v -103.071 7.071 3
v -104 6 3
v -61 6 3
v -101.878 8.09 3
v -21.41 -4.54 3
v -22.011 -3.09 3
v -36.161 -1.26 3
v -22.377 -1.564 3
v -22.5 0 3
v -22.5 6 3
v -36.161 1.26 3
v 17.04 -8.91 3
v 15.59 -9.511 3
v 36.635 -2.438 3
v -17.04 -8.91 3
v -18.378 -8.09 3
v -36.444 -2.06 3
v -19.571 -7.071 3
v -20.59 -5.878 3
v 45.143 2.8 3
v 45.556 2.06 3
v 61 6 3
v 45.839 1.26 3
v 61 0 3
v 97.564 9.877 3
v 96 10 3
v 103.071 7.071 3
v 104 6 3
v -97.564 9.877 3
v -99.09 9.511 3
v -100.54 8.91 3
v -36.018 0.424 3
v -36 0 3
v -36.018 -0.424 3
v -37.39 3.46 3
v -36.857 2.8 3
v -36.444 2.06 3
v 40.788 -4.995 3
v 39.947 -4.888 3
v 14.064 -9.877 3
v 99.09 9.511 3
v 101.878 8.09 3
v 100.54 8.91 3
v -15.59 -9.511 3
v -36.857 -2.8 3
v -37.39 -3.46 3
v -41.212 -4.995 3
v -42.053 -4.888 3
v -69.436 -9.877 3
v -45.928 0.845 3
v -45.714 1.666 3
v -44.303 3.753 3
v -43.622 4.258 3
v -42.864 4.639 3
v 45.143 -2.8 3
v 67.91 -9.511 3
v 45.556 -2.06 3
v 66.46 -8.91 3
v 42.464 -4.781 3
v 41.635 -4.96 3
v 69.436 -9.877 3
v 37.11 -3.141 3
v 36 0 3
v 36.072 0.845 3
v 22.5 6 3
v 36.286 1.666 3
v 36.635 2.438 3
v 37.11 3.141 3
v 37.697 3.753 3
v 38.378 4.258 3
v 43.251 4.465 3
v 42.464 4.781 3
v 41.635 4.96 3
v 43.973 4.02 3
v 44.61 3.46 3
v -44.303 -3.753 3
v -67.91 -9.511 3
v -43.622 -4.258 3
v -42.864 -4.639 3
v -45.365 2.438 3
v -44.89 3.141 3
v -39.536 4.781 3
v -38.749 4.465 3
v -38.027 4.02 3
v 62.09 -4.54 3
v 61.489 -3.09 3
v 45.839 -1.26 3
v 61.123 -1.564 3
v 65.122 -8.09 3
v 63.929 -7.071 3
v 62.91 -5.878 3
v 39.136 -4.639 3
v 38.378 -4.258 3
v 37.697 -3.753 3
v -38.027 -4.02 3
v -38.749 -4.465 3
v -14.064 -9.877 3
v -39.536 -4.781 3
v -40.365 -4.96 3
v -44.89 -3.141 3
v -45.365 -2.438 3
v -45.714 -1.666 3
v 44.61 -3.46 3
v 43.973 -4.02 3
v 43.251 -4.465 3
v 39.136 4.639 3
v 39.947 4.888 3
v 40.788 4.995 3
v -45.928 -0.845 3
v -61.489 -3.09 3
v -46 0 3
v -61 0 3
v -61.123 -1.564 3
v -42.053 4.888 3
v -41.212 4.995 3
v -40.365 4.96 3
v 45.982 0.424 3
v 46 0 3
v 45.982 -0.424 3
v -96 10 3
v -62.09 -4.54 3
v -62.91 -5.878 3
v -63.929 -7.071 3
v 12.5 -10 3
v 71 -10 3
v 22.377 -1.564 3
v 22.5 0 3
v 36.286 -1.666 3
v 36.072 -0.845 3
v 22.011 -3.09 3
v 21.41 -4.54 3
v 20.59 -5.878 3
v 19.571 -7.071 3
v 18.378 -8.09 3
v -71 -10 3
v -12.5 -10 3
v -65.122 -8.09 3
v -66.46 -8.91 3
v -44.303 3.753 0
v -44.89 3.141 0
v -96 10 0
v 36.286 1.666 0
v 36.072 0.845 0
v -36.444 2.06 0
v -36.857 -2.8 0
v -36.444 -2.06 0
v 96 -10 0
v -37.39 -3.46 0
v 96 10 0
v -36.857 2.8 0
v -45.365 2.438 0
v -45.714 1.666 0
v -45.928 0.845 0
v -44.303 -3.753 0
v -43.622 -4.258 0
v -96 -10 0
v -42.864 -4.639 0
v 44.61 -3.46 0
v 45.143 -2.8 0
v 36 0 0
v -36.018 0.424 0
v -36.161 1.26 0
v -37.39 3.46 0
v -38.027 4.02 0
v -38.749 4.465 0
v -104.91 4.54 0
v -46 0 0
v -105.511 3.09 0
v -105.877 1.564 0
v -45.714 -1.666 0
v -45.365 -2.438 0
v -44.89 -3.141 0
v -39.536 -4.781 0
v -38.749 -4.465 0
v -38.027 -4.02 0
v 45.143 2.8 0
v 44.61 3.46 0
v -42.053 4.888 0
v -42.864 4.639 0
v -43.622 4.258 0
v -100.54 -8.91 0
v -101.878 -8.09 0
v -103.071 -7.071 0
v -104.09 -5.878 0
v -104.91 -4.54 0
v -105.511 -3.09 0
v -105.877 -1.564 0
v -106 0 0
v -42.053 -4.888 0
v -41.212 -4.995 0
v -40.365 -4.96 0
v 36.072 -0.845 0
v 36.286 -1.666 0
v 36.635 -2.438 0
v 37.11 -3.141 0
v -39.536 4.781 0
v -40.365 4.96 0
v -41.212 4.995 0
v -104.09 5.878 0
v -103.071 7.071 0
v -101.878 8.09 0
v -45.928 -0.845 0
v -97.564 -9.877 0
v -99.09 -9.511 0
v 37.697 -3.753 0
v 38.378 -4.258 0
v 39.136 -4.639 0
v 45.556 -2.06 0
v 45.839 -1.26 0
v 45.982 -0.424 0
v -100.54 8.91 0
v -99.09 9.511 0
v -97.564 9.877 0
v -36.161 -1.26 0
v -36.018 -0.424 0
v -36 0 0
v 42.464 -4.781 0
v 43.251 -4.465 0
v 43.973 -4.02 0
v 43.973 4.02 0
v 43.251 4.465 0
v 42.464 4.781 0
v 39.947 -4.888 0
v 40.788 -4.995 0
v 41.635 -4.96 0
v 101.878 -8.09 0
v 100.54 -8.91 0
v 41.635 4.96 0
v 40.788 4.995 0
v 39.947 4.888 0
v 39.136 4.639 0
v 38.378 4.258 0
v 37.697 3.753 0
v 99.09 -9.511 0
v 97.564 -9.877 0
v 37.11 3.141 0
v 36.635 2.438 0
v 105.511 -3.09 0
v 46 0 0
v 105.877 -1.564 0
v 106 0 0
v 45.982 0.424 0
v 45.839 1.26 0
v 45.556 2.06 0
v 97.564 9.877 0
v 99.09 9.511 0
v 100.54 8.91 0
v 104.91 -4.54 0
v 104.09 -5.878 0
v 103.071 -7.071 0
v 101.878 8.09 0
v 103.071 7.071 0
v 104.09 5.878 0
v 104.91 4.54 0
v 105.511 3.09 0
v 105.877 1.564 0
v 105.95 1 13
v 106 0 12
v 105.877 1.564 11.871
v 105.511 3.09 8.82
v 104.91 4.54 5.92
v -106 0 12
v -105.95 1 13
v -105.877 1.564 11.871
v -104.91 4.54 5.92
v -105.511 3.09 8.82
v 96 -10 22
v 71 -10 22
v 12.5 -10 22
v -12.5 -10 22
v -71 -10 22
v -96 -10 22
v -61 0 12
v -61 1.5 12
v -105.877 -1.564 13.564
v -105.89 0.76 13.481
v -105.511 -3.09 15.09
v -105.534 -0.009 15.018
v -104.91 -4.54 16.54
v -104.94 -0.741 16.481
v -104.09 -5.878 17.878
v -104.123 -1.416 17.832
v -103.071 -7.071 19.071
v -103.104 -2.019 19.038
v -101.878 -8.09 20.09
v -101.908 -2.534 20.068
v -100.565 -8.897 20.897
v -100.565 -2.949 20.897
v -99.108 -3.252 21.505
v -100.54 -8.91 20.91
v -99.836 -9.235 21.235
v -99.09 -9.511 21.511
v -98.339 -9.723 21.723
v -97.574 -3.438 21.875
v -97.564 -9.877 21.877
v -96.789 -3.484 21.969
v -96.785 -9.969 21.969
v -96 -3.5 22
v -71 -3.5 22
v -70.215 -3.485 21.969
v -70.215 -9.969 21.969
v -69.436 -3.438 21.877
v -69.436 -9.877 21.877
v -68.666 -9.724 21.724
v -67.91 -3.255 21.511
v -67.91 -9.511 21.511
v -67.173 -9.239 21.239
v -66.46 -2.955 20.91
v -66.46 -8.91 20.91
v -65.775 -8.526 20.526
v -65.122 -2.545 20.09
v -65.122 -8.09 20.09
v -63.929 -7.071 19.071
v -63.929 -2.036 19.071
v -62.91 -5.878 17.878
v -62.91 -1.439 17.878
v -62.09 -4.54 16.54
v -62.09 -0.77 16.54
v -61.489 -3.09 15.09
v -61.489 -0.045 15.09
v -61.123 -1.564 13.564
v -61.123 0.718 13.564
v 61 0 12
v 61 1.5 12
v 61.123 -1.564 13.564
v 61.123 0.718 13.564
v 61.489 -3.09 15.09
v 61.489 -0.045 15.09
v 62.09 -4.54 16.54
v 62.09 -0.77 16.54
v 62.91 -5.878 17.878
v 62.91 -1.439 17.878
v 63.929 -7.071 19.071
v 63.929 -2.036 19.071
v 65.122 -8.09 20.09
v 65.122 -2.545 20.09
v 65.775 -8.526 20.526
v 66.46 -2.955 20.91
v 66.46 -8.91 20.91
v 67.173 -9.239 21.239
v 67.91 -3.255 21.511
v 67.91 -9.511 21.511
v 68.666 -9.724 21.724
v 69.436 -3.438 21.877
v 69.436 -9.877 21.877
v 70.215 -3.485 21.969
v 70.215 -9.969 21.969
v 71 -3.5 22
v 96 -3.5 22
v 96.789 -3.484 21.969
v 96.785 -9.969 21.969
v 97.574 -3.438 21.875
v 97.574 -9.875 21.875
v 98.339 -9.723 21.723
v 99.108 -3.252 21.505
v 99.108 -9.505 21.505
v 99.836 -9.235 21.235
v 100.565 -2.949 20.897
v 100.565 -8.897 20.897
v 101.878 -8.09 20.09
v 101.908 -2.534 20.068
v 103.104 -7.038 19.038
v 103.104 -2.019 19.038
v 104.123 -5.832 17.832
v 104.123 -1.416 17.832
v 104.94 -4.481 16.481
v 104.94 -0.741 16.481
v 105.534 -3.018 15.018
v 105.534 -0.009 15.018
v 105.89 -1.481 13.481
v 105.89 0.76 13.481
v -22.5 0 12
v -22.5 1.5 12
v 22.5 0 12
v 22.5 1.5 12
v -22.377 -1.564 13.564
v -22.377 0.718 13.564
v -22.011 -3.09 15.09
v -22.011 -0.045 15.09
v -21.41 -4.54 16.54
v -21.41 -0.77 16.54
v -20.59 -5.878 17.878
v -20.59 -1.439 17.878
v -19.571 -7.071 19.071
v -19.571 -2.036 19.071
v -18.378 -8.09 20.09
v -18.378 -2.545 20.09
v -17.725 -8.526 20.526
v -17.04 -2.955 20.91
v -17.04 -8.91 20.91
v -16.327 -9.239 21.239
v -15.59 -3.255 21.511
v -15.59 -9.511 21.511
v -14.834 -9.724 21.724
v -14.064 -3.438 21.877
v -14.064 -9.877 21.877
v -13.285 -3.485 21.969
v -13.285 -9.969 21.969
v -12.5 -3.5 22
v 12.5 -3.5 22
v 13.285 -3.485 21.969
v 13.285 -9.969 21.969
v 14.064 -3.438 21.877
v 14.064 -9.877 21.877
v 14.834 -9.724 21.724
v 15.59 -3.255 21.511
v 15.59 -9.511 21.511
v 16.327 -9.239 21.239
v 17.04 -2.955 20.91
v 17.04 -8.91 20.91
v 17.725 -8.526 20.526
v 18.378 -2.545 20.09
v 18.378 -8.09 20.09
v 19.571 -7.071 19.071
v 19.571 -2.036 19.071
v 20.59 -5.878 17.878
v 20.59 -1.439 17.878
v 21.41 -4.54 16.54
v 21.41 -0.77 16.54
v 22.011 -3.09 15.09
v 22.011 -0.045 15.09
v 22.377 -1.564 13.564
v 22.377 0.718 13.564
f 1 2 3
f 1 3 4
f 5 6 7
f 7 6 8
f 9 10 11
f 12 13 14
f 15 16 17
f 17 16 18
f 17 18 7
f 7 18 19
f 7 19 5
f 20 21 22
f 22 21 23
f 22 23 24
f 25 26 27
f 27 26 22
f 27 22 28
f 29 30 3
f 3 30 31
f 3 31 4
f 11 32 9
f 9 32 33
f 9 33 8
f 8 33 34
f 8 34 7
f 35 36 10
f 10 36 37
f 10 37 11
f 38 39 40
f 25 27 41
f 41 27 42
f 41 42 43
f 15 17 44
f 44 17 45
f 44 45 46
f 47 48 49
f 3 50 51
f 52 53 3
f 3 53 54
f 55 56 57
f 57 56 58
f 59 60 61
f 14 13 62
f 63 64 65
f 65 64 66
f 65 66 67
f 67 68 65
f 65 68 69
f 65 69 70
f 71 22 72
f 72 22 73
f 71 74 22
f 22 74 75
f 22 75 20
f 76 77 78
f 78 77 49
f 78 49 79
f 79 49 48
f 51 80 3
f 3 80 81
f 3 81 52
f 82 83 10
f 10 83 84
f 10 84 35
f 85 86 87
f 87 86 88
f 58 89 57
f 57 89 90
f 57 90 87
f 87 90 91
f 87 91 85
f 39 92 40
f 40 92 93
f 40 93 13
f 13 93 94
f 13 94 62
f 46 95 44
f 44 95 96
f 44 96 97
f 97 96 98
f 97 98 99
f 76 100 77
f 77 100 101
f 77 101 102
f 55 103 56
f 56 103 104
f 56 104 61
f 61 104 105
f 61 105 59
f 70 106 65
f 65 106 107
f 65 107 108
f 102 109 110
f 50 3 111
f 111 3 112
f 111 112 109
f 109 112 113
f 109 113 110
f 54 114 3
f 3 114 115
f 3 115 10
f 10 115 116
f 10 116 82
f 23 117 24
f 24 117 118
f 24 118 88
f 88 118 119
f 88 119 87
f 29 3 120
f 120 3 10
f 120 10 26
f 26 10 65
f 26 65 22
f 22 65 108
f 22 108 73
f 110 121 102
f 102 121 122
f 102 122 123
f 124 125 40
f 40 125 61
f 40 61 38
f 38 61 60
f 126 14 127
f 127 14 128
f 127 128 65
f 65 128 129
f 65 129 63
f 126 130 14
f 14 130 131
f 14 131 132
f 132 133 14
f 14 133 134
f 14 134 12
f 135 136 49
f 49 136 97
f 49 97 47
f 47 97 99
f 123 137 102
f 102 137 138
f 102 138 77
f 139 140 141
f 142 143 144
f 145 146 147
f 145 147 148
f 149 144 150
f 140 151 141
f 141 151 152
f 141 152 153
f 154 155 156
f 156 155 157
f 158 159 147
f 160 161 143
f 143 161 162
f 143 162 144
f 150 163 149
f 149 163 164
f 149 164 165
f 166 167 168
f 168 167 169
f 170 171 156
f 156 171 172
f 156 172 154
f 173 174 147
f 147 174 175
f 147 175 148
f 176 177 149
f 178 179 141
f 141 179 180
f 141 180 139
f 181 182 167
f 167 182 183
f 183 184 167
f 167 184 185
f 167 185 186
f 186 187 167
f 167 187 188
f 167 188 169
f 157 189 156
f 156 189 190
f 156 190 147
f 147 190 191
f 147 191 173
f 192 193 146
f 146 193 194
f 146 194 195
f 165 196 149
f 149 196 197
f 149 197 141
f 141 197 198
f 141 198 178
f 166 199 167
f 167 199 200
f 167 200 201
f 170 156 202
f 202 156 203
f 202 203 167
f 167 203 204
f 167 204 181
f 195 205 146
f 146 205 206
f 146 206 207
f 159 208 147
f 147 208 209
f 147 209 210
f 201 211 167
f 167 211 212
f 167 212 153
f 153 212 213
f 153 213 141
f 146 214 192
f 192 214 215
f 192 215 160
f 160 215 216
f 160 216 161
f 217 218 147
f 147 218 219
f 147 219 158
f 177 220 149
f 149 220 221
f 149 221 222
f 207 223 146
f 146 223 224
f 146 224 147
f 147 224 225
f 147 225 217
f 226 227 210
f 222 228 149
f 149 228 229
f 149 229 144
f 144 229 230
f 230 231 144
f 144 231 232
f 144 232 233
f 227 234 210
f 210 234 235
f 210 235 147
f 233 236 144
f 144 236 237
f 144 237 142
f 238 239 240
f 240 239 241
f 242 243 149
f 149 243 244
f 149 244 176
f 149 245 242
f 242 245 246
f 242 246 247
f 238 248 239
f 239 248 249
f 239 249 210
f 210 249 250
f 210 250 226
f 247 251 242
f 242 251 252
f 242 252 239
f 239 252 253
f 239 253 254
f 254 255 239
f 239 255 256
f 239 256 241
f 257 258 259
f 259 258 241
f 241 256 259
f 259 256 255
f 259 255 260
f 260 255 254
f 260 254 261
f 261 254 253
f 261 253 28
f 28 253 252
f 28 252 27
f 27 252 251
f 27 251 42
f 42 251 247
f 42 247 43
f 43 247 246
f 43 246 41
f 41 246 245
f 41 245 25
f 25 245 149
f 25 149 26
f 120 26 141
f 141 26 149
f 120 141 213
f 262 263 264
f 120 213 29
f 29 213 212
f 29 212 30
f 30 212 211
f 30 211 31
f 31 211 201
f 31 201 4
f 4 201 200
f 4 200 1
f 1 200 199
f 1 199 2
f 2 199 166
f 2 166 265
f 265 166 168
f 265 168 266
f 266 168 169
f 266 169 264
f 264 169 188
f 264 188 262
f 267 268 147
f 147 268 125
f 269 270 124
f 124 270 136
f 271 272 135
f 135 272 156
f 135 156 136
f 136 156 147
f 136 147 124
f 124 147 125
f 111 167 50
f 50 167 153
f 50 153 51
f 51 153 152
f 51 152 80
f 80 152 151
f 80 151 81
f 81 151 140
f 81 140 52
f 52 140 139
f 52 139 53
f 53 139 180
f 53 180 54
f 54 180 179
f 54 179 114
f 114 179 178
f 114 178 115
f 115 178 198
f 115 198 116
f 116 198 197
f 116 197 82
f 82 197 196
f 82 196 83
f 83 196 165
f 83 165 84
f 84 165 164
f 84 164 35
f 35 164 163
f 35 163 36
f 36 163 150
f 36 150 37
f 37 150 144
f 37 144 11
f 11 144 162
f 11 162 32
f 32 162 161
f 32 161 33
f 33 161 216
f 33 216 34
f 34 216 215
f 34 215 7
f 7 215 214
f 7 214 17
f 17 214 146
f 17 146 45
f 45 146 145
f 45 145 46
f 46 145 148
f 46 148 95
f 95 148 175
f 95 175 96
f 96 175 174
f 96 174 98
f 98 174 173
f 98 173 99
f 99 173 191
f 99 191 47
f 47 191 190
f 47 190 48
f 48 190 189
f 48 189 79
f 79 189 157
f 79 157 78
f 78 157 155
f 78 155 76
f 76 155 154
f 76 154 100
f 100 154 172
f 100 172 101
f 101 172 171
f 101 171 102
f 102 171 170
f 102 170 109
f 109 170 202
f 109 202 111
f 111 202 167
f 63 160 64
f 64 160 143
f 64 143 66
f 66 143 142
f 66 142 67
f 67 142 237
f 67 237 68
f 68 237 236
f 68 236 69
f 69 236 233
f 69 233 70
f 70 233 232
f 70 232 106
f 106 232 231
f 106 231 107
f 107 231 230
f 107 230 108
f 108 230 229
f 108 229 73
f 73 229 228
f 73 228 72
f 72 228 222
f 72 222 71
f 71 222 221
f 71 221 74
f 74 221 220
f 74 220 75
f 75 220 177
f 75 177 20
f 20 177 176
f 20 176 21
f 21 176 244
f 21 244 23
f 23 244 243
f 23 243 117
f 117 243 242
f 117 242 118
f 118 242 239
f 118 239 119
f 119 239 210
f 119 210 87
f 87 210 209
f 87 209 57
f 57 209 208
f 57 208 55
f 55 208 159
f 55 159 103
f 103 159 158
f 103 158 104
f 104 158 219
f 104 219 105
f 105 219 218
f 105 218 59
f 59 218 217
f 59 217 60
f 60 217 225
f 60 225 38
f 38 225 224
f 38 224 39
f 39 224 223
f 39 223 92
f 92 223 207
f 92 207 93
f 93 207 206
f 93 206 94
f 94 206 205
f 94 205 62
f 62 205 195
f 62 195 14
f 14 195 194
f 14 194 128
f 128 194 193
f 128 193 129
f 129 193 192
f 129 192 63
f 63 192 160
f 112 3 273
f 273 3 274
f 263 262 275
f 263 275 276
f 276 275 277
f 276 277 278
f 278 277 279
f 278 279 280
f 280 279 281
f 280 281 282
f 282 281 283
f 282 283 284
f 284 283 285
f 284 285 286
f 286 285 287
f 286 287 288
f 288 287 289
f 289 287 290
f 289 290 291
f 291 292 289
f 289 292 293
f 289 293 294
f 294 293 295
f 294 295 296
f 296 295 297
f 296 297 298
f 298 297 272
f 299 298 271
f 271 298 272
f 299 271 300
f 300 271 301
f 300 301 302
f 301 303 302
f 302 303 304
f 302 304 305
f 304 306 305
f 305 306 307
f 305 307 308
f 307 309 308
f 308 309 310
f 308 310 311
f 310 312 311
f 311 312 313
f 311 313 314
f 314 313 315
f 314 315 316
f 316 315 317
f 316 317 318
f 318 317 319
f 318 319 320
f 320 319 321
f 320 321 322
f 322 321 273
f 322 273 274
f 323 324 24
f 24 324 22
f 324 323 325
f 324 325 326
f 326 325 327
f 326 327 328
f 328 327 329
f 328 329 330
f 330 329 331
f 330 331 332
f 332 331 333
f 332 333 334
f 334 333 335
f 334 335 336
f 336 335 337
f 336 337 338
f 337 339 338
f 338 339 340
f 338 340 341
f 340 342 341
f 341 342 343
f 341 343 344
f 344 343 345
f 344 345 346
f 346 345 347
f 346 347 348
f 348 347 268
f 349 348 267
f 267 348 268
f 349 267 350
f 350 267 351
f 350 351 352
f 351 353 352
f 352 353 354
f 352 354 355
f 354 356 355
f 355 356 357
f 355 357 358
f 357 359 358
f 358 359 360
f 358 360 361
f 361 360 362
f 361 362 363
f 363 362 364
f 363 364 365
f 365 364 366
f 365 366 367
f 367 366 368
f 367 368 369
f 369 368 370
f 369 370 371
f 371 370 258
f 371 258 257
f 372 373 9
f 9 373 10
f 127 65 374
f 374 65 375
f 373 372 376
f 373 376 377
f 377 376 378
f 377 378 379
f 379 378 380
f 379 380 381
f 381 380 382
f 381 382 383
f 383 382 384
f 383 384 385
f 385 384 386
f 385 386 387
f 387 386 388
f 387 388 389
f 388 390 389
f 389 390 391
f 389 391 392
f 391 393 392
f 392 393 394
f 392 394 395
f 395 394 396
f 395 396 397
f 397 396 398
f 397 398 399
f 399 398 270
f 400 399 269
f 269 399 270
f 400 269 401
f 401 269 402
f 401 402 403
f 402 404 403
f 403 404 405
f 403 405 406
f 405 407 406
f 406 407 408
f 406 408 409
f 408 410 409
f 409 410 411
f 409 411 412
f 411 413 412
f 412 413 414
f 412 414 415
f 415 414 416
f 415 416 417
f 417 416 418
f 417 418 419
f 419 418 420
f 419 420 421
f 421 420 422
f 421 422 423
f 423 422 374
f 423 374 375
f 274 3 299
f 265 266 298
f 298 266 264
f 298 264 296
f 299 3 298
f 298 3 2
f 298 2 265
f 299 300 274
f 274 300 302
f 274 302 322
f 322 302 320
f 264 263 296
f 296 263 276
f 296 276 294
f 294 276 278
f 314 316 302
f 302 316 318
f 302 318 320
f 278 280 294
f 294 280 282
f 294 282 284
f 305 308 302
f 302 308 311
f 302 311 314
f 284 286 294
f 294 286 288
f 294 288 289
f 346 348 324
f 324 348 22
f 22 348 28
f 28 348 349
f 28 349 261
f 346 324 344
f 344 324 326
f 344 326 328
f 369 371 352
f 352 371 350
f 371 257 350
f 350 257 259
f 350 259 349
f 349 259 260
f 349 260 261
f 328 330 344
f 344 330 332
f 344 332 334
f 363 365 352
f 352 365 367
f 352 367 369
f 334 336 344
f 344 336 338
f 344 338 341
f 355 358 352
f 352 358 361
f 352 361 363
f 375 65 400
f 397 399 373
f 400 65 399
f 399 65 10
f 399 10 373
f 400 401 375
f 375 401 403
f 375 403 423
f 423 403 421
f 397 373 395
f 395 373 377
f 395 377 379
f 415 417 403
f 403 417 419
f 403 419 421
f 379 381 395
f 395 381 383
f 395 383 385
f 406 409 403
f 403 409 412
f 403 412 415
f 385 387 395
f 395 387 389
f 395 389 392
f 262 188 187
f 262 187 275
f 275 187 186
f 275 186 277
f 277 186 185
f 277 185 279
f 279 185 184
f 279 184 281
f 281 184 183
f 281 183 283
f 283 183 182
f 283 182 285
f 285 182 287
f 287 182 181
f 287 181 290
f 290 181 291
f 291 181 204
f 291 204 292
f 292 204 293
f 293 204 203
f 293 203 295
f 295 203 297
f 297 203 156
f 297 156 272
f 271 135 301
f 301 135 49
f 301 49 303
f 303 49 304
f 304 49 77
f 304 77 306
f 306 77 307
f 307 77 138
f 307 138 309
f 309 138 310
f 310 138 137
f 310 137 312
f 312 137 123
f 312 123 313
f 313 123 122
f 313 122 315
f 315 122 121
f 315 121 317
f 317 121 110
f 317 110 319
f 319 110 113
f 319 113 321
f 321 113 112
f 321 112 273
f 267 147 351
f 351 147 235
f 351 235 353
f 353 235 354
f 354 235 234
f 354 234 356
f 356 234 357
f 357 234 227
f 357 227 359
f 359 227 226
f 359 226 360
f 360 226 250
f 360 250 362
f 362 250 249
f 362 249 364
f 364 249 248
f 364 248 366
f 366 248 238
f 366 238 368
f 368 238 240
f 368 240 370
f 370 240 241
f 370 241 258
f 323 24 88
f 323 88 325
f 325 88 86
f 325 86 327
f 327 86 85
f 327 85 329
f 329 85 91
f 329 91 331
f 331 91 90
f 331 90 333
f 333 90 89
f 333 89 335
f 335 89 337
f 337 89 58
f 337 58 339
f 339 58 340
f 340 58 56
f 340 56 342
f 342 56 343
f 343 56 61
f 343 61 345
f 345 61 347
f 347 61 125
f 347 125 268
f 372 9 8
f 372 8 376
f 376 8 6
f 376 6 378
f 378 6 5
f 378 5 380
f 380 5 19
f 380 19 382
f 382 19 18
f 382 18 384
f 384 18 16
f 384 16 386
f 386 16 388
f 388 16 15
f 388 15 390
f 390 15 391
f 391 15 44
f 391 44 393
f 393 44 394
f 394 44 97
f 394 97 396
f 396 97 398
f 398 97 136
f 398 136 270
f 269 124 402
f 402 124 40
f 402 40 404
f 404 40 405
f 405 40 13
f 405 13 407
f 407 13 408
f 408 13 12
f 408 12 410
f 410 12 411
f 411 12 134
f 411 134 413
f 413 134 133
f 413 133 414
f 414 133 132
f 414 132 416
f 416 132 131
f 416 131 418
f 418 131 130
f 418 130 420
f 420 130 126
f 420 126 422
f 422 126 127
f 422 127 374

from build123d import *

# Parameters (mm, degrees)
SKETCH1_R           = 5
BOSS_EXTRUDE1_DEPTH = 3
BOSS_EXTRUDE2_DEPTH = 6
CHAMFER1_START      = -106
CHAMFER1_DEPTH      = 45
CHAMFER1_START_2    = -22.5
CHAMFER1_2_DEPTH    = 45
CHAMFER1_START_3    = 61
CHAMFER1_3_DEPTH    = 45
CHAMFER1_START_4    = -4
CHAMFER1_4_DEPTH    = 9.159204648
CHAMFER1_START_5    = 3
CHAMFER1_5_DEPTH    = 10
FILLET1_R           = 10


with BuildPart() as part:
    # Sketch1 → Boss-Extrude1 (new body)
    with BuildSketch(Plane.XY):
        with BuildLine():
            Line((-106, -10), (106, -10))
            Line((106, -10), (106, 0))
            ThreePointArc((106, 0), (103.071067812, 7.071067812), (96, 10))
            Line((96, 10), (-96, 10))
            ThreePointArc((-96, 10), (-103.071067812, 7.071067812), (-106, 0))
            Line((-106, 0), (-106, -10))
        make_face()
        with Locations((-41, 0)):
            Circle(SKETCH1_R, mode=Mode.SUBTRACT)
        with Locations((41, 0)):
            Circle(SKETCH1_R, mode=Mode.SUBTRACT)
    extrude(amount=BOSS_EXTRUDE1_DEPTH)

    # Sketch2 → Boss-Extrude2 (add)
    with BuildSketch(Plane.XZ.offset(10)):
        with BuildLine():
            Line((-106, 0), (-61, 0))
            Line((-61, 0), (-61, 12))
            ThreePointArc((-61, 12), (-63.928932188, 19.071067812), (-71, 22))
            Line((-71, 22), (-96, 22))
            ThreePointArc((-96, 22), (-103.071067812, 19.071067812), (-106, 12))
            Line((-106, 12), (-106, 0))
        make_face()
        with BuildLine():
            Line((106, 0), (61, 0))
            Line((61, 0), (61, 12))
            ThreePointArc((61, 12), (63.928932188, 19.071067812), (71, 22))
            Line((71, 22), (96, 22))
            ThreePointArc((96, 22), (103.071067812, 19.071067812), (106, 12))
            Line((106, 12), (106, 0))
        make_face()
        with BuildLine():
            Line((-22.5, 0), (22.5, 0))
            Line((22.5, 0), (22.5, 12))
            ThreePointArc((22.5, 12), (19.571067812, 19.071067812), (12.5, 22))
            Line((12.5, 22), (-12.5, 22))
            ThreePointArc((-12.5, 22), (-19.571067812, 19.071067812), (-22.5, 12))
            Line((-22.5, 12), (-22.5, 0))
        make_face()
    extrude(amount=-BOSS_EXTRUDE2_DEPTH)

    # Chamfer1: read off the stored shape, not the designer's step
    # Chamfer1 outline → Chamfer1 (add)
    with BuildSketch(Plane.YZ.offset(CHAMFER1_START)):
        Polygon((6, 3), (-3.5, 22), (-4, 22), (-4, 3), align=None)
    extrude(amount=CHAMFER1_DEPTH)

    # Chamfer1 2 outline → Chamfer1 2 (add)
    with BuildSketch(Plane.YZ.offset(CHAMFER1_START_2)):
        Polygon((6, 3), (-3.5, 22), (-4, 22), (-4, 3), align=None)
    extrude(amount=CHAMFER1_2_DEPTH)

    # Chamfer1 3 outline → Chamfer1 3 (add)
    with BuildSketch(Plane.YZ.offset(CHAMFER1_START_3)):
        Polygon((6, 3), (-3.5, 22), (-4, 22), (-4, 3), align=None)
    extrude(amount=CHAMFER1_3_DEPTH)

    # Chamfer1 4 outline → Chamfer1 4 (cut)
    with BuildSketch(Plane(origin=(0, 0, 0), x_dir=(1, 0, 0), z_dir=(0, 1, 0)).offset(CHAMFER1_START_4)):
        with BuildLine():
            Line((-106, -22), (-96, -22))
            ThreePointArc((-96, -22), (-103.071067812, -19.071067812), (-106, -12))
            Line((-106, -12), (-106, -22))
        make_face()
        with BuildLine():
            ThreePointArc((-61, -12), (-63.928932188, -19.071067812), (-71, -22))
            Line((-71, -22), (-61, -22))
            Line((-61, -22), (-61, -12))
        make_face()
        with BuildLine():
            Line((61, -22), (71, -22))
            ThreePointArc((71, -22), (63.928932188, -19.071067812), (61, -12))
            Line((61, -12), (61, -22))
        make_face()
        with BuildLine():
            ThreePointArc((106, -12), (103.071067812, -19.071067812), (96, -22))
            Line((96, -22), (106, -22))
            Line((106, -22), (106, -12))
        make_face()
        with BuildLine():
            Line((-22.5, -22), (-12.5, -22))
            ThreePointArc((-12.5, -22), (-19.571067812, -19.071067812), (-22.5, -12))
            Line((-22.5, -12), (-22.5, -22))
        make_face()
        with BuildLine():
            ThreePointArc((22.5, -12), (19.571067812, -19.071067812), (12.5, -22))
            Line((12.5, -22), (22.5, -22))
            Line((22.5, -22), (22.5, -12))
        make_face()
    extrude(amount=CHAMFER1_4_DEPTH, mode=Mode.SUBTRACT)

    # Chamfer1 5 outline → Chamfer1 5 (cut)
    with BuildSketch(Plane.XY.offset(CHAMFER1_START_5)):
        with BuildLine():
            Line((106, 7), (103.141428429, 7))
            ThreePointArc((103.141428429, 7), (105.257815193, 3.780589618), (106, 0))
            Line((106, 0), (106, 7))
        make_face()
        with BuildLine():
            ThreePointArc((-106, 0), (-105.257815193, 3.780589618), (-103.141428429, 7))
            Line((-103.141428429, 7), (-106, 7))
            Line((-106, 7), (-106, 0))
        make_face()
    extrude(amount=CHAMFER1_5_DEPTH, mode=Mode.SUBTRACT)

    # Fillet1
    # the kernel refuses this fillet: 10 mm, written as the material it takes off along each edge
    with BuildSketch(Plane(origin=(-106, -10, -25), x_dir=(1, 0, 0), z_dir=(0, 0, 1))) as fillet1_piece_1:
        with BuildLine():
            CenterArc((FILLET1_R, FILLET1_R), FILLET1_R, 180, 90)
            Line((0, FILLET1_R), (0, 0))
            Line((0, 0), (FILLET1_R, 0))
        make_face()
    extrude(amount=62, mode=Mode.SUBTRACT)
    with BuildSketch(Plane(origin=(-61, -10, 3), x_dir=(-1, 0, 0), z_dir=(0, 0, 1)), Plane(origin=(61, -10, 3), x_dir=(0, 1, 0), z_dir=(0, 0, 1)), Plane(origin=(-22.5, -10, 37), x_dir=(1, 0, 0), z_dir=(0, 0, -1)), Plane(origin=(22.5, -10, 3), x_dir=(-1, 0, 0), z_dir=(0, 0, 1))) as fillet1_piece_2:
        with BuildLine():
            CenterArc((FILLET1_R, -FILLET1_R), FILLET1_R, 90, 90)
            Line((0, -FILLET1_R), (0, 0))
            Line((0, 0), (FILLET1_R, 0))
        make_face()
    extrude(amount=34, mode=Mode.SUBTRACT)
    with BuildSketch(Plane(origin=(106, -10, 37), x_dir=(0, 1, 0), z_dir=(0, 0, -1))) as fillet1_piece_3:
        with BuildLine():
            CenterArc((FILLET1_R, -FILLET1_R), FILLET1_R, 90, 90)
            Line((0, -FILLET1_R), (0, 0))
            Line((0, 0), (FILLET1_R, 0))
        make_face()
    extrude(amount=62, mode=Mode.SUBTRACT)


solid = part.part
